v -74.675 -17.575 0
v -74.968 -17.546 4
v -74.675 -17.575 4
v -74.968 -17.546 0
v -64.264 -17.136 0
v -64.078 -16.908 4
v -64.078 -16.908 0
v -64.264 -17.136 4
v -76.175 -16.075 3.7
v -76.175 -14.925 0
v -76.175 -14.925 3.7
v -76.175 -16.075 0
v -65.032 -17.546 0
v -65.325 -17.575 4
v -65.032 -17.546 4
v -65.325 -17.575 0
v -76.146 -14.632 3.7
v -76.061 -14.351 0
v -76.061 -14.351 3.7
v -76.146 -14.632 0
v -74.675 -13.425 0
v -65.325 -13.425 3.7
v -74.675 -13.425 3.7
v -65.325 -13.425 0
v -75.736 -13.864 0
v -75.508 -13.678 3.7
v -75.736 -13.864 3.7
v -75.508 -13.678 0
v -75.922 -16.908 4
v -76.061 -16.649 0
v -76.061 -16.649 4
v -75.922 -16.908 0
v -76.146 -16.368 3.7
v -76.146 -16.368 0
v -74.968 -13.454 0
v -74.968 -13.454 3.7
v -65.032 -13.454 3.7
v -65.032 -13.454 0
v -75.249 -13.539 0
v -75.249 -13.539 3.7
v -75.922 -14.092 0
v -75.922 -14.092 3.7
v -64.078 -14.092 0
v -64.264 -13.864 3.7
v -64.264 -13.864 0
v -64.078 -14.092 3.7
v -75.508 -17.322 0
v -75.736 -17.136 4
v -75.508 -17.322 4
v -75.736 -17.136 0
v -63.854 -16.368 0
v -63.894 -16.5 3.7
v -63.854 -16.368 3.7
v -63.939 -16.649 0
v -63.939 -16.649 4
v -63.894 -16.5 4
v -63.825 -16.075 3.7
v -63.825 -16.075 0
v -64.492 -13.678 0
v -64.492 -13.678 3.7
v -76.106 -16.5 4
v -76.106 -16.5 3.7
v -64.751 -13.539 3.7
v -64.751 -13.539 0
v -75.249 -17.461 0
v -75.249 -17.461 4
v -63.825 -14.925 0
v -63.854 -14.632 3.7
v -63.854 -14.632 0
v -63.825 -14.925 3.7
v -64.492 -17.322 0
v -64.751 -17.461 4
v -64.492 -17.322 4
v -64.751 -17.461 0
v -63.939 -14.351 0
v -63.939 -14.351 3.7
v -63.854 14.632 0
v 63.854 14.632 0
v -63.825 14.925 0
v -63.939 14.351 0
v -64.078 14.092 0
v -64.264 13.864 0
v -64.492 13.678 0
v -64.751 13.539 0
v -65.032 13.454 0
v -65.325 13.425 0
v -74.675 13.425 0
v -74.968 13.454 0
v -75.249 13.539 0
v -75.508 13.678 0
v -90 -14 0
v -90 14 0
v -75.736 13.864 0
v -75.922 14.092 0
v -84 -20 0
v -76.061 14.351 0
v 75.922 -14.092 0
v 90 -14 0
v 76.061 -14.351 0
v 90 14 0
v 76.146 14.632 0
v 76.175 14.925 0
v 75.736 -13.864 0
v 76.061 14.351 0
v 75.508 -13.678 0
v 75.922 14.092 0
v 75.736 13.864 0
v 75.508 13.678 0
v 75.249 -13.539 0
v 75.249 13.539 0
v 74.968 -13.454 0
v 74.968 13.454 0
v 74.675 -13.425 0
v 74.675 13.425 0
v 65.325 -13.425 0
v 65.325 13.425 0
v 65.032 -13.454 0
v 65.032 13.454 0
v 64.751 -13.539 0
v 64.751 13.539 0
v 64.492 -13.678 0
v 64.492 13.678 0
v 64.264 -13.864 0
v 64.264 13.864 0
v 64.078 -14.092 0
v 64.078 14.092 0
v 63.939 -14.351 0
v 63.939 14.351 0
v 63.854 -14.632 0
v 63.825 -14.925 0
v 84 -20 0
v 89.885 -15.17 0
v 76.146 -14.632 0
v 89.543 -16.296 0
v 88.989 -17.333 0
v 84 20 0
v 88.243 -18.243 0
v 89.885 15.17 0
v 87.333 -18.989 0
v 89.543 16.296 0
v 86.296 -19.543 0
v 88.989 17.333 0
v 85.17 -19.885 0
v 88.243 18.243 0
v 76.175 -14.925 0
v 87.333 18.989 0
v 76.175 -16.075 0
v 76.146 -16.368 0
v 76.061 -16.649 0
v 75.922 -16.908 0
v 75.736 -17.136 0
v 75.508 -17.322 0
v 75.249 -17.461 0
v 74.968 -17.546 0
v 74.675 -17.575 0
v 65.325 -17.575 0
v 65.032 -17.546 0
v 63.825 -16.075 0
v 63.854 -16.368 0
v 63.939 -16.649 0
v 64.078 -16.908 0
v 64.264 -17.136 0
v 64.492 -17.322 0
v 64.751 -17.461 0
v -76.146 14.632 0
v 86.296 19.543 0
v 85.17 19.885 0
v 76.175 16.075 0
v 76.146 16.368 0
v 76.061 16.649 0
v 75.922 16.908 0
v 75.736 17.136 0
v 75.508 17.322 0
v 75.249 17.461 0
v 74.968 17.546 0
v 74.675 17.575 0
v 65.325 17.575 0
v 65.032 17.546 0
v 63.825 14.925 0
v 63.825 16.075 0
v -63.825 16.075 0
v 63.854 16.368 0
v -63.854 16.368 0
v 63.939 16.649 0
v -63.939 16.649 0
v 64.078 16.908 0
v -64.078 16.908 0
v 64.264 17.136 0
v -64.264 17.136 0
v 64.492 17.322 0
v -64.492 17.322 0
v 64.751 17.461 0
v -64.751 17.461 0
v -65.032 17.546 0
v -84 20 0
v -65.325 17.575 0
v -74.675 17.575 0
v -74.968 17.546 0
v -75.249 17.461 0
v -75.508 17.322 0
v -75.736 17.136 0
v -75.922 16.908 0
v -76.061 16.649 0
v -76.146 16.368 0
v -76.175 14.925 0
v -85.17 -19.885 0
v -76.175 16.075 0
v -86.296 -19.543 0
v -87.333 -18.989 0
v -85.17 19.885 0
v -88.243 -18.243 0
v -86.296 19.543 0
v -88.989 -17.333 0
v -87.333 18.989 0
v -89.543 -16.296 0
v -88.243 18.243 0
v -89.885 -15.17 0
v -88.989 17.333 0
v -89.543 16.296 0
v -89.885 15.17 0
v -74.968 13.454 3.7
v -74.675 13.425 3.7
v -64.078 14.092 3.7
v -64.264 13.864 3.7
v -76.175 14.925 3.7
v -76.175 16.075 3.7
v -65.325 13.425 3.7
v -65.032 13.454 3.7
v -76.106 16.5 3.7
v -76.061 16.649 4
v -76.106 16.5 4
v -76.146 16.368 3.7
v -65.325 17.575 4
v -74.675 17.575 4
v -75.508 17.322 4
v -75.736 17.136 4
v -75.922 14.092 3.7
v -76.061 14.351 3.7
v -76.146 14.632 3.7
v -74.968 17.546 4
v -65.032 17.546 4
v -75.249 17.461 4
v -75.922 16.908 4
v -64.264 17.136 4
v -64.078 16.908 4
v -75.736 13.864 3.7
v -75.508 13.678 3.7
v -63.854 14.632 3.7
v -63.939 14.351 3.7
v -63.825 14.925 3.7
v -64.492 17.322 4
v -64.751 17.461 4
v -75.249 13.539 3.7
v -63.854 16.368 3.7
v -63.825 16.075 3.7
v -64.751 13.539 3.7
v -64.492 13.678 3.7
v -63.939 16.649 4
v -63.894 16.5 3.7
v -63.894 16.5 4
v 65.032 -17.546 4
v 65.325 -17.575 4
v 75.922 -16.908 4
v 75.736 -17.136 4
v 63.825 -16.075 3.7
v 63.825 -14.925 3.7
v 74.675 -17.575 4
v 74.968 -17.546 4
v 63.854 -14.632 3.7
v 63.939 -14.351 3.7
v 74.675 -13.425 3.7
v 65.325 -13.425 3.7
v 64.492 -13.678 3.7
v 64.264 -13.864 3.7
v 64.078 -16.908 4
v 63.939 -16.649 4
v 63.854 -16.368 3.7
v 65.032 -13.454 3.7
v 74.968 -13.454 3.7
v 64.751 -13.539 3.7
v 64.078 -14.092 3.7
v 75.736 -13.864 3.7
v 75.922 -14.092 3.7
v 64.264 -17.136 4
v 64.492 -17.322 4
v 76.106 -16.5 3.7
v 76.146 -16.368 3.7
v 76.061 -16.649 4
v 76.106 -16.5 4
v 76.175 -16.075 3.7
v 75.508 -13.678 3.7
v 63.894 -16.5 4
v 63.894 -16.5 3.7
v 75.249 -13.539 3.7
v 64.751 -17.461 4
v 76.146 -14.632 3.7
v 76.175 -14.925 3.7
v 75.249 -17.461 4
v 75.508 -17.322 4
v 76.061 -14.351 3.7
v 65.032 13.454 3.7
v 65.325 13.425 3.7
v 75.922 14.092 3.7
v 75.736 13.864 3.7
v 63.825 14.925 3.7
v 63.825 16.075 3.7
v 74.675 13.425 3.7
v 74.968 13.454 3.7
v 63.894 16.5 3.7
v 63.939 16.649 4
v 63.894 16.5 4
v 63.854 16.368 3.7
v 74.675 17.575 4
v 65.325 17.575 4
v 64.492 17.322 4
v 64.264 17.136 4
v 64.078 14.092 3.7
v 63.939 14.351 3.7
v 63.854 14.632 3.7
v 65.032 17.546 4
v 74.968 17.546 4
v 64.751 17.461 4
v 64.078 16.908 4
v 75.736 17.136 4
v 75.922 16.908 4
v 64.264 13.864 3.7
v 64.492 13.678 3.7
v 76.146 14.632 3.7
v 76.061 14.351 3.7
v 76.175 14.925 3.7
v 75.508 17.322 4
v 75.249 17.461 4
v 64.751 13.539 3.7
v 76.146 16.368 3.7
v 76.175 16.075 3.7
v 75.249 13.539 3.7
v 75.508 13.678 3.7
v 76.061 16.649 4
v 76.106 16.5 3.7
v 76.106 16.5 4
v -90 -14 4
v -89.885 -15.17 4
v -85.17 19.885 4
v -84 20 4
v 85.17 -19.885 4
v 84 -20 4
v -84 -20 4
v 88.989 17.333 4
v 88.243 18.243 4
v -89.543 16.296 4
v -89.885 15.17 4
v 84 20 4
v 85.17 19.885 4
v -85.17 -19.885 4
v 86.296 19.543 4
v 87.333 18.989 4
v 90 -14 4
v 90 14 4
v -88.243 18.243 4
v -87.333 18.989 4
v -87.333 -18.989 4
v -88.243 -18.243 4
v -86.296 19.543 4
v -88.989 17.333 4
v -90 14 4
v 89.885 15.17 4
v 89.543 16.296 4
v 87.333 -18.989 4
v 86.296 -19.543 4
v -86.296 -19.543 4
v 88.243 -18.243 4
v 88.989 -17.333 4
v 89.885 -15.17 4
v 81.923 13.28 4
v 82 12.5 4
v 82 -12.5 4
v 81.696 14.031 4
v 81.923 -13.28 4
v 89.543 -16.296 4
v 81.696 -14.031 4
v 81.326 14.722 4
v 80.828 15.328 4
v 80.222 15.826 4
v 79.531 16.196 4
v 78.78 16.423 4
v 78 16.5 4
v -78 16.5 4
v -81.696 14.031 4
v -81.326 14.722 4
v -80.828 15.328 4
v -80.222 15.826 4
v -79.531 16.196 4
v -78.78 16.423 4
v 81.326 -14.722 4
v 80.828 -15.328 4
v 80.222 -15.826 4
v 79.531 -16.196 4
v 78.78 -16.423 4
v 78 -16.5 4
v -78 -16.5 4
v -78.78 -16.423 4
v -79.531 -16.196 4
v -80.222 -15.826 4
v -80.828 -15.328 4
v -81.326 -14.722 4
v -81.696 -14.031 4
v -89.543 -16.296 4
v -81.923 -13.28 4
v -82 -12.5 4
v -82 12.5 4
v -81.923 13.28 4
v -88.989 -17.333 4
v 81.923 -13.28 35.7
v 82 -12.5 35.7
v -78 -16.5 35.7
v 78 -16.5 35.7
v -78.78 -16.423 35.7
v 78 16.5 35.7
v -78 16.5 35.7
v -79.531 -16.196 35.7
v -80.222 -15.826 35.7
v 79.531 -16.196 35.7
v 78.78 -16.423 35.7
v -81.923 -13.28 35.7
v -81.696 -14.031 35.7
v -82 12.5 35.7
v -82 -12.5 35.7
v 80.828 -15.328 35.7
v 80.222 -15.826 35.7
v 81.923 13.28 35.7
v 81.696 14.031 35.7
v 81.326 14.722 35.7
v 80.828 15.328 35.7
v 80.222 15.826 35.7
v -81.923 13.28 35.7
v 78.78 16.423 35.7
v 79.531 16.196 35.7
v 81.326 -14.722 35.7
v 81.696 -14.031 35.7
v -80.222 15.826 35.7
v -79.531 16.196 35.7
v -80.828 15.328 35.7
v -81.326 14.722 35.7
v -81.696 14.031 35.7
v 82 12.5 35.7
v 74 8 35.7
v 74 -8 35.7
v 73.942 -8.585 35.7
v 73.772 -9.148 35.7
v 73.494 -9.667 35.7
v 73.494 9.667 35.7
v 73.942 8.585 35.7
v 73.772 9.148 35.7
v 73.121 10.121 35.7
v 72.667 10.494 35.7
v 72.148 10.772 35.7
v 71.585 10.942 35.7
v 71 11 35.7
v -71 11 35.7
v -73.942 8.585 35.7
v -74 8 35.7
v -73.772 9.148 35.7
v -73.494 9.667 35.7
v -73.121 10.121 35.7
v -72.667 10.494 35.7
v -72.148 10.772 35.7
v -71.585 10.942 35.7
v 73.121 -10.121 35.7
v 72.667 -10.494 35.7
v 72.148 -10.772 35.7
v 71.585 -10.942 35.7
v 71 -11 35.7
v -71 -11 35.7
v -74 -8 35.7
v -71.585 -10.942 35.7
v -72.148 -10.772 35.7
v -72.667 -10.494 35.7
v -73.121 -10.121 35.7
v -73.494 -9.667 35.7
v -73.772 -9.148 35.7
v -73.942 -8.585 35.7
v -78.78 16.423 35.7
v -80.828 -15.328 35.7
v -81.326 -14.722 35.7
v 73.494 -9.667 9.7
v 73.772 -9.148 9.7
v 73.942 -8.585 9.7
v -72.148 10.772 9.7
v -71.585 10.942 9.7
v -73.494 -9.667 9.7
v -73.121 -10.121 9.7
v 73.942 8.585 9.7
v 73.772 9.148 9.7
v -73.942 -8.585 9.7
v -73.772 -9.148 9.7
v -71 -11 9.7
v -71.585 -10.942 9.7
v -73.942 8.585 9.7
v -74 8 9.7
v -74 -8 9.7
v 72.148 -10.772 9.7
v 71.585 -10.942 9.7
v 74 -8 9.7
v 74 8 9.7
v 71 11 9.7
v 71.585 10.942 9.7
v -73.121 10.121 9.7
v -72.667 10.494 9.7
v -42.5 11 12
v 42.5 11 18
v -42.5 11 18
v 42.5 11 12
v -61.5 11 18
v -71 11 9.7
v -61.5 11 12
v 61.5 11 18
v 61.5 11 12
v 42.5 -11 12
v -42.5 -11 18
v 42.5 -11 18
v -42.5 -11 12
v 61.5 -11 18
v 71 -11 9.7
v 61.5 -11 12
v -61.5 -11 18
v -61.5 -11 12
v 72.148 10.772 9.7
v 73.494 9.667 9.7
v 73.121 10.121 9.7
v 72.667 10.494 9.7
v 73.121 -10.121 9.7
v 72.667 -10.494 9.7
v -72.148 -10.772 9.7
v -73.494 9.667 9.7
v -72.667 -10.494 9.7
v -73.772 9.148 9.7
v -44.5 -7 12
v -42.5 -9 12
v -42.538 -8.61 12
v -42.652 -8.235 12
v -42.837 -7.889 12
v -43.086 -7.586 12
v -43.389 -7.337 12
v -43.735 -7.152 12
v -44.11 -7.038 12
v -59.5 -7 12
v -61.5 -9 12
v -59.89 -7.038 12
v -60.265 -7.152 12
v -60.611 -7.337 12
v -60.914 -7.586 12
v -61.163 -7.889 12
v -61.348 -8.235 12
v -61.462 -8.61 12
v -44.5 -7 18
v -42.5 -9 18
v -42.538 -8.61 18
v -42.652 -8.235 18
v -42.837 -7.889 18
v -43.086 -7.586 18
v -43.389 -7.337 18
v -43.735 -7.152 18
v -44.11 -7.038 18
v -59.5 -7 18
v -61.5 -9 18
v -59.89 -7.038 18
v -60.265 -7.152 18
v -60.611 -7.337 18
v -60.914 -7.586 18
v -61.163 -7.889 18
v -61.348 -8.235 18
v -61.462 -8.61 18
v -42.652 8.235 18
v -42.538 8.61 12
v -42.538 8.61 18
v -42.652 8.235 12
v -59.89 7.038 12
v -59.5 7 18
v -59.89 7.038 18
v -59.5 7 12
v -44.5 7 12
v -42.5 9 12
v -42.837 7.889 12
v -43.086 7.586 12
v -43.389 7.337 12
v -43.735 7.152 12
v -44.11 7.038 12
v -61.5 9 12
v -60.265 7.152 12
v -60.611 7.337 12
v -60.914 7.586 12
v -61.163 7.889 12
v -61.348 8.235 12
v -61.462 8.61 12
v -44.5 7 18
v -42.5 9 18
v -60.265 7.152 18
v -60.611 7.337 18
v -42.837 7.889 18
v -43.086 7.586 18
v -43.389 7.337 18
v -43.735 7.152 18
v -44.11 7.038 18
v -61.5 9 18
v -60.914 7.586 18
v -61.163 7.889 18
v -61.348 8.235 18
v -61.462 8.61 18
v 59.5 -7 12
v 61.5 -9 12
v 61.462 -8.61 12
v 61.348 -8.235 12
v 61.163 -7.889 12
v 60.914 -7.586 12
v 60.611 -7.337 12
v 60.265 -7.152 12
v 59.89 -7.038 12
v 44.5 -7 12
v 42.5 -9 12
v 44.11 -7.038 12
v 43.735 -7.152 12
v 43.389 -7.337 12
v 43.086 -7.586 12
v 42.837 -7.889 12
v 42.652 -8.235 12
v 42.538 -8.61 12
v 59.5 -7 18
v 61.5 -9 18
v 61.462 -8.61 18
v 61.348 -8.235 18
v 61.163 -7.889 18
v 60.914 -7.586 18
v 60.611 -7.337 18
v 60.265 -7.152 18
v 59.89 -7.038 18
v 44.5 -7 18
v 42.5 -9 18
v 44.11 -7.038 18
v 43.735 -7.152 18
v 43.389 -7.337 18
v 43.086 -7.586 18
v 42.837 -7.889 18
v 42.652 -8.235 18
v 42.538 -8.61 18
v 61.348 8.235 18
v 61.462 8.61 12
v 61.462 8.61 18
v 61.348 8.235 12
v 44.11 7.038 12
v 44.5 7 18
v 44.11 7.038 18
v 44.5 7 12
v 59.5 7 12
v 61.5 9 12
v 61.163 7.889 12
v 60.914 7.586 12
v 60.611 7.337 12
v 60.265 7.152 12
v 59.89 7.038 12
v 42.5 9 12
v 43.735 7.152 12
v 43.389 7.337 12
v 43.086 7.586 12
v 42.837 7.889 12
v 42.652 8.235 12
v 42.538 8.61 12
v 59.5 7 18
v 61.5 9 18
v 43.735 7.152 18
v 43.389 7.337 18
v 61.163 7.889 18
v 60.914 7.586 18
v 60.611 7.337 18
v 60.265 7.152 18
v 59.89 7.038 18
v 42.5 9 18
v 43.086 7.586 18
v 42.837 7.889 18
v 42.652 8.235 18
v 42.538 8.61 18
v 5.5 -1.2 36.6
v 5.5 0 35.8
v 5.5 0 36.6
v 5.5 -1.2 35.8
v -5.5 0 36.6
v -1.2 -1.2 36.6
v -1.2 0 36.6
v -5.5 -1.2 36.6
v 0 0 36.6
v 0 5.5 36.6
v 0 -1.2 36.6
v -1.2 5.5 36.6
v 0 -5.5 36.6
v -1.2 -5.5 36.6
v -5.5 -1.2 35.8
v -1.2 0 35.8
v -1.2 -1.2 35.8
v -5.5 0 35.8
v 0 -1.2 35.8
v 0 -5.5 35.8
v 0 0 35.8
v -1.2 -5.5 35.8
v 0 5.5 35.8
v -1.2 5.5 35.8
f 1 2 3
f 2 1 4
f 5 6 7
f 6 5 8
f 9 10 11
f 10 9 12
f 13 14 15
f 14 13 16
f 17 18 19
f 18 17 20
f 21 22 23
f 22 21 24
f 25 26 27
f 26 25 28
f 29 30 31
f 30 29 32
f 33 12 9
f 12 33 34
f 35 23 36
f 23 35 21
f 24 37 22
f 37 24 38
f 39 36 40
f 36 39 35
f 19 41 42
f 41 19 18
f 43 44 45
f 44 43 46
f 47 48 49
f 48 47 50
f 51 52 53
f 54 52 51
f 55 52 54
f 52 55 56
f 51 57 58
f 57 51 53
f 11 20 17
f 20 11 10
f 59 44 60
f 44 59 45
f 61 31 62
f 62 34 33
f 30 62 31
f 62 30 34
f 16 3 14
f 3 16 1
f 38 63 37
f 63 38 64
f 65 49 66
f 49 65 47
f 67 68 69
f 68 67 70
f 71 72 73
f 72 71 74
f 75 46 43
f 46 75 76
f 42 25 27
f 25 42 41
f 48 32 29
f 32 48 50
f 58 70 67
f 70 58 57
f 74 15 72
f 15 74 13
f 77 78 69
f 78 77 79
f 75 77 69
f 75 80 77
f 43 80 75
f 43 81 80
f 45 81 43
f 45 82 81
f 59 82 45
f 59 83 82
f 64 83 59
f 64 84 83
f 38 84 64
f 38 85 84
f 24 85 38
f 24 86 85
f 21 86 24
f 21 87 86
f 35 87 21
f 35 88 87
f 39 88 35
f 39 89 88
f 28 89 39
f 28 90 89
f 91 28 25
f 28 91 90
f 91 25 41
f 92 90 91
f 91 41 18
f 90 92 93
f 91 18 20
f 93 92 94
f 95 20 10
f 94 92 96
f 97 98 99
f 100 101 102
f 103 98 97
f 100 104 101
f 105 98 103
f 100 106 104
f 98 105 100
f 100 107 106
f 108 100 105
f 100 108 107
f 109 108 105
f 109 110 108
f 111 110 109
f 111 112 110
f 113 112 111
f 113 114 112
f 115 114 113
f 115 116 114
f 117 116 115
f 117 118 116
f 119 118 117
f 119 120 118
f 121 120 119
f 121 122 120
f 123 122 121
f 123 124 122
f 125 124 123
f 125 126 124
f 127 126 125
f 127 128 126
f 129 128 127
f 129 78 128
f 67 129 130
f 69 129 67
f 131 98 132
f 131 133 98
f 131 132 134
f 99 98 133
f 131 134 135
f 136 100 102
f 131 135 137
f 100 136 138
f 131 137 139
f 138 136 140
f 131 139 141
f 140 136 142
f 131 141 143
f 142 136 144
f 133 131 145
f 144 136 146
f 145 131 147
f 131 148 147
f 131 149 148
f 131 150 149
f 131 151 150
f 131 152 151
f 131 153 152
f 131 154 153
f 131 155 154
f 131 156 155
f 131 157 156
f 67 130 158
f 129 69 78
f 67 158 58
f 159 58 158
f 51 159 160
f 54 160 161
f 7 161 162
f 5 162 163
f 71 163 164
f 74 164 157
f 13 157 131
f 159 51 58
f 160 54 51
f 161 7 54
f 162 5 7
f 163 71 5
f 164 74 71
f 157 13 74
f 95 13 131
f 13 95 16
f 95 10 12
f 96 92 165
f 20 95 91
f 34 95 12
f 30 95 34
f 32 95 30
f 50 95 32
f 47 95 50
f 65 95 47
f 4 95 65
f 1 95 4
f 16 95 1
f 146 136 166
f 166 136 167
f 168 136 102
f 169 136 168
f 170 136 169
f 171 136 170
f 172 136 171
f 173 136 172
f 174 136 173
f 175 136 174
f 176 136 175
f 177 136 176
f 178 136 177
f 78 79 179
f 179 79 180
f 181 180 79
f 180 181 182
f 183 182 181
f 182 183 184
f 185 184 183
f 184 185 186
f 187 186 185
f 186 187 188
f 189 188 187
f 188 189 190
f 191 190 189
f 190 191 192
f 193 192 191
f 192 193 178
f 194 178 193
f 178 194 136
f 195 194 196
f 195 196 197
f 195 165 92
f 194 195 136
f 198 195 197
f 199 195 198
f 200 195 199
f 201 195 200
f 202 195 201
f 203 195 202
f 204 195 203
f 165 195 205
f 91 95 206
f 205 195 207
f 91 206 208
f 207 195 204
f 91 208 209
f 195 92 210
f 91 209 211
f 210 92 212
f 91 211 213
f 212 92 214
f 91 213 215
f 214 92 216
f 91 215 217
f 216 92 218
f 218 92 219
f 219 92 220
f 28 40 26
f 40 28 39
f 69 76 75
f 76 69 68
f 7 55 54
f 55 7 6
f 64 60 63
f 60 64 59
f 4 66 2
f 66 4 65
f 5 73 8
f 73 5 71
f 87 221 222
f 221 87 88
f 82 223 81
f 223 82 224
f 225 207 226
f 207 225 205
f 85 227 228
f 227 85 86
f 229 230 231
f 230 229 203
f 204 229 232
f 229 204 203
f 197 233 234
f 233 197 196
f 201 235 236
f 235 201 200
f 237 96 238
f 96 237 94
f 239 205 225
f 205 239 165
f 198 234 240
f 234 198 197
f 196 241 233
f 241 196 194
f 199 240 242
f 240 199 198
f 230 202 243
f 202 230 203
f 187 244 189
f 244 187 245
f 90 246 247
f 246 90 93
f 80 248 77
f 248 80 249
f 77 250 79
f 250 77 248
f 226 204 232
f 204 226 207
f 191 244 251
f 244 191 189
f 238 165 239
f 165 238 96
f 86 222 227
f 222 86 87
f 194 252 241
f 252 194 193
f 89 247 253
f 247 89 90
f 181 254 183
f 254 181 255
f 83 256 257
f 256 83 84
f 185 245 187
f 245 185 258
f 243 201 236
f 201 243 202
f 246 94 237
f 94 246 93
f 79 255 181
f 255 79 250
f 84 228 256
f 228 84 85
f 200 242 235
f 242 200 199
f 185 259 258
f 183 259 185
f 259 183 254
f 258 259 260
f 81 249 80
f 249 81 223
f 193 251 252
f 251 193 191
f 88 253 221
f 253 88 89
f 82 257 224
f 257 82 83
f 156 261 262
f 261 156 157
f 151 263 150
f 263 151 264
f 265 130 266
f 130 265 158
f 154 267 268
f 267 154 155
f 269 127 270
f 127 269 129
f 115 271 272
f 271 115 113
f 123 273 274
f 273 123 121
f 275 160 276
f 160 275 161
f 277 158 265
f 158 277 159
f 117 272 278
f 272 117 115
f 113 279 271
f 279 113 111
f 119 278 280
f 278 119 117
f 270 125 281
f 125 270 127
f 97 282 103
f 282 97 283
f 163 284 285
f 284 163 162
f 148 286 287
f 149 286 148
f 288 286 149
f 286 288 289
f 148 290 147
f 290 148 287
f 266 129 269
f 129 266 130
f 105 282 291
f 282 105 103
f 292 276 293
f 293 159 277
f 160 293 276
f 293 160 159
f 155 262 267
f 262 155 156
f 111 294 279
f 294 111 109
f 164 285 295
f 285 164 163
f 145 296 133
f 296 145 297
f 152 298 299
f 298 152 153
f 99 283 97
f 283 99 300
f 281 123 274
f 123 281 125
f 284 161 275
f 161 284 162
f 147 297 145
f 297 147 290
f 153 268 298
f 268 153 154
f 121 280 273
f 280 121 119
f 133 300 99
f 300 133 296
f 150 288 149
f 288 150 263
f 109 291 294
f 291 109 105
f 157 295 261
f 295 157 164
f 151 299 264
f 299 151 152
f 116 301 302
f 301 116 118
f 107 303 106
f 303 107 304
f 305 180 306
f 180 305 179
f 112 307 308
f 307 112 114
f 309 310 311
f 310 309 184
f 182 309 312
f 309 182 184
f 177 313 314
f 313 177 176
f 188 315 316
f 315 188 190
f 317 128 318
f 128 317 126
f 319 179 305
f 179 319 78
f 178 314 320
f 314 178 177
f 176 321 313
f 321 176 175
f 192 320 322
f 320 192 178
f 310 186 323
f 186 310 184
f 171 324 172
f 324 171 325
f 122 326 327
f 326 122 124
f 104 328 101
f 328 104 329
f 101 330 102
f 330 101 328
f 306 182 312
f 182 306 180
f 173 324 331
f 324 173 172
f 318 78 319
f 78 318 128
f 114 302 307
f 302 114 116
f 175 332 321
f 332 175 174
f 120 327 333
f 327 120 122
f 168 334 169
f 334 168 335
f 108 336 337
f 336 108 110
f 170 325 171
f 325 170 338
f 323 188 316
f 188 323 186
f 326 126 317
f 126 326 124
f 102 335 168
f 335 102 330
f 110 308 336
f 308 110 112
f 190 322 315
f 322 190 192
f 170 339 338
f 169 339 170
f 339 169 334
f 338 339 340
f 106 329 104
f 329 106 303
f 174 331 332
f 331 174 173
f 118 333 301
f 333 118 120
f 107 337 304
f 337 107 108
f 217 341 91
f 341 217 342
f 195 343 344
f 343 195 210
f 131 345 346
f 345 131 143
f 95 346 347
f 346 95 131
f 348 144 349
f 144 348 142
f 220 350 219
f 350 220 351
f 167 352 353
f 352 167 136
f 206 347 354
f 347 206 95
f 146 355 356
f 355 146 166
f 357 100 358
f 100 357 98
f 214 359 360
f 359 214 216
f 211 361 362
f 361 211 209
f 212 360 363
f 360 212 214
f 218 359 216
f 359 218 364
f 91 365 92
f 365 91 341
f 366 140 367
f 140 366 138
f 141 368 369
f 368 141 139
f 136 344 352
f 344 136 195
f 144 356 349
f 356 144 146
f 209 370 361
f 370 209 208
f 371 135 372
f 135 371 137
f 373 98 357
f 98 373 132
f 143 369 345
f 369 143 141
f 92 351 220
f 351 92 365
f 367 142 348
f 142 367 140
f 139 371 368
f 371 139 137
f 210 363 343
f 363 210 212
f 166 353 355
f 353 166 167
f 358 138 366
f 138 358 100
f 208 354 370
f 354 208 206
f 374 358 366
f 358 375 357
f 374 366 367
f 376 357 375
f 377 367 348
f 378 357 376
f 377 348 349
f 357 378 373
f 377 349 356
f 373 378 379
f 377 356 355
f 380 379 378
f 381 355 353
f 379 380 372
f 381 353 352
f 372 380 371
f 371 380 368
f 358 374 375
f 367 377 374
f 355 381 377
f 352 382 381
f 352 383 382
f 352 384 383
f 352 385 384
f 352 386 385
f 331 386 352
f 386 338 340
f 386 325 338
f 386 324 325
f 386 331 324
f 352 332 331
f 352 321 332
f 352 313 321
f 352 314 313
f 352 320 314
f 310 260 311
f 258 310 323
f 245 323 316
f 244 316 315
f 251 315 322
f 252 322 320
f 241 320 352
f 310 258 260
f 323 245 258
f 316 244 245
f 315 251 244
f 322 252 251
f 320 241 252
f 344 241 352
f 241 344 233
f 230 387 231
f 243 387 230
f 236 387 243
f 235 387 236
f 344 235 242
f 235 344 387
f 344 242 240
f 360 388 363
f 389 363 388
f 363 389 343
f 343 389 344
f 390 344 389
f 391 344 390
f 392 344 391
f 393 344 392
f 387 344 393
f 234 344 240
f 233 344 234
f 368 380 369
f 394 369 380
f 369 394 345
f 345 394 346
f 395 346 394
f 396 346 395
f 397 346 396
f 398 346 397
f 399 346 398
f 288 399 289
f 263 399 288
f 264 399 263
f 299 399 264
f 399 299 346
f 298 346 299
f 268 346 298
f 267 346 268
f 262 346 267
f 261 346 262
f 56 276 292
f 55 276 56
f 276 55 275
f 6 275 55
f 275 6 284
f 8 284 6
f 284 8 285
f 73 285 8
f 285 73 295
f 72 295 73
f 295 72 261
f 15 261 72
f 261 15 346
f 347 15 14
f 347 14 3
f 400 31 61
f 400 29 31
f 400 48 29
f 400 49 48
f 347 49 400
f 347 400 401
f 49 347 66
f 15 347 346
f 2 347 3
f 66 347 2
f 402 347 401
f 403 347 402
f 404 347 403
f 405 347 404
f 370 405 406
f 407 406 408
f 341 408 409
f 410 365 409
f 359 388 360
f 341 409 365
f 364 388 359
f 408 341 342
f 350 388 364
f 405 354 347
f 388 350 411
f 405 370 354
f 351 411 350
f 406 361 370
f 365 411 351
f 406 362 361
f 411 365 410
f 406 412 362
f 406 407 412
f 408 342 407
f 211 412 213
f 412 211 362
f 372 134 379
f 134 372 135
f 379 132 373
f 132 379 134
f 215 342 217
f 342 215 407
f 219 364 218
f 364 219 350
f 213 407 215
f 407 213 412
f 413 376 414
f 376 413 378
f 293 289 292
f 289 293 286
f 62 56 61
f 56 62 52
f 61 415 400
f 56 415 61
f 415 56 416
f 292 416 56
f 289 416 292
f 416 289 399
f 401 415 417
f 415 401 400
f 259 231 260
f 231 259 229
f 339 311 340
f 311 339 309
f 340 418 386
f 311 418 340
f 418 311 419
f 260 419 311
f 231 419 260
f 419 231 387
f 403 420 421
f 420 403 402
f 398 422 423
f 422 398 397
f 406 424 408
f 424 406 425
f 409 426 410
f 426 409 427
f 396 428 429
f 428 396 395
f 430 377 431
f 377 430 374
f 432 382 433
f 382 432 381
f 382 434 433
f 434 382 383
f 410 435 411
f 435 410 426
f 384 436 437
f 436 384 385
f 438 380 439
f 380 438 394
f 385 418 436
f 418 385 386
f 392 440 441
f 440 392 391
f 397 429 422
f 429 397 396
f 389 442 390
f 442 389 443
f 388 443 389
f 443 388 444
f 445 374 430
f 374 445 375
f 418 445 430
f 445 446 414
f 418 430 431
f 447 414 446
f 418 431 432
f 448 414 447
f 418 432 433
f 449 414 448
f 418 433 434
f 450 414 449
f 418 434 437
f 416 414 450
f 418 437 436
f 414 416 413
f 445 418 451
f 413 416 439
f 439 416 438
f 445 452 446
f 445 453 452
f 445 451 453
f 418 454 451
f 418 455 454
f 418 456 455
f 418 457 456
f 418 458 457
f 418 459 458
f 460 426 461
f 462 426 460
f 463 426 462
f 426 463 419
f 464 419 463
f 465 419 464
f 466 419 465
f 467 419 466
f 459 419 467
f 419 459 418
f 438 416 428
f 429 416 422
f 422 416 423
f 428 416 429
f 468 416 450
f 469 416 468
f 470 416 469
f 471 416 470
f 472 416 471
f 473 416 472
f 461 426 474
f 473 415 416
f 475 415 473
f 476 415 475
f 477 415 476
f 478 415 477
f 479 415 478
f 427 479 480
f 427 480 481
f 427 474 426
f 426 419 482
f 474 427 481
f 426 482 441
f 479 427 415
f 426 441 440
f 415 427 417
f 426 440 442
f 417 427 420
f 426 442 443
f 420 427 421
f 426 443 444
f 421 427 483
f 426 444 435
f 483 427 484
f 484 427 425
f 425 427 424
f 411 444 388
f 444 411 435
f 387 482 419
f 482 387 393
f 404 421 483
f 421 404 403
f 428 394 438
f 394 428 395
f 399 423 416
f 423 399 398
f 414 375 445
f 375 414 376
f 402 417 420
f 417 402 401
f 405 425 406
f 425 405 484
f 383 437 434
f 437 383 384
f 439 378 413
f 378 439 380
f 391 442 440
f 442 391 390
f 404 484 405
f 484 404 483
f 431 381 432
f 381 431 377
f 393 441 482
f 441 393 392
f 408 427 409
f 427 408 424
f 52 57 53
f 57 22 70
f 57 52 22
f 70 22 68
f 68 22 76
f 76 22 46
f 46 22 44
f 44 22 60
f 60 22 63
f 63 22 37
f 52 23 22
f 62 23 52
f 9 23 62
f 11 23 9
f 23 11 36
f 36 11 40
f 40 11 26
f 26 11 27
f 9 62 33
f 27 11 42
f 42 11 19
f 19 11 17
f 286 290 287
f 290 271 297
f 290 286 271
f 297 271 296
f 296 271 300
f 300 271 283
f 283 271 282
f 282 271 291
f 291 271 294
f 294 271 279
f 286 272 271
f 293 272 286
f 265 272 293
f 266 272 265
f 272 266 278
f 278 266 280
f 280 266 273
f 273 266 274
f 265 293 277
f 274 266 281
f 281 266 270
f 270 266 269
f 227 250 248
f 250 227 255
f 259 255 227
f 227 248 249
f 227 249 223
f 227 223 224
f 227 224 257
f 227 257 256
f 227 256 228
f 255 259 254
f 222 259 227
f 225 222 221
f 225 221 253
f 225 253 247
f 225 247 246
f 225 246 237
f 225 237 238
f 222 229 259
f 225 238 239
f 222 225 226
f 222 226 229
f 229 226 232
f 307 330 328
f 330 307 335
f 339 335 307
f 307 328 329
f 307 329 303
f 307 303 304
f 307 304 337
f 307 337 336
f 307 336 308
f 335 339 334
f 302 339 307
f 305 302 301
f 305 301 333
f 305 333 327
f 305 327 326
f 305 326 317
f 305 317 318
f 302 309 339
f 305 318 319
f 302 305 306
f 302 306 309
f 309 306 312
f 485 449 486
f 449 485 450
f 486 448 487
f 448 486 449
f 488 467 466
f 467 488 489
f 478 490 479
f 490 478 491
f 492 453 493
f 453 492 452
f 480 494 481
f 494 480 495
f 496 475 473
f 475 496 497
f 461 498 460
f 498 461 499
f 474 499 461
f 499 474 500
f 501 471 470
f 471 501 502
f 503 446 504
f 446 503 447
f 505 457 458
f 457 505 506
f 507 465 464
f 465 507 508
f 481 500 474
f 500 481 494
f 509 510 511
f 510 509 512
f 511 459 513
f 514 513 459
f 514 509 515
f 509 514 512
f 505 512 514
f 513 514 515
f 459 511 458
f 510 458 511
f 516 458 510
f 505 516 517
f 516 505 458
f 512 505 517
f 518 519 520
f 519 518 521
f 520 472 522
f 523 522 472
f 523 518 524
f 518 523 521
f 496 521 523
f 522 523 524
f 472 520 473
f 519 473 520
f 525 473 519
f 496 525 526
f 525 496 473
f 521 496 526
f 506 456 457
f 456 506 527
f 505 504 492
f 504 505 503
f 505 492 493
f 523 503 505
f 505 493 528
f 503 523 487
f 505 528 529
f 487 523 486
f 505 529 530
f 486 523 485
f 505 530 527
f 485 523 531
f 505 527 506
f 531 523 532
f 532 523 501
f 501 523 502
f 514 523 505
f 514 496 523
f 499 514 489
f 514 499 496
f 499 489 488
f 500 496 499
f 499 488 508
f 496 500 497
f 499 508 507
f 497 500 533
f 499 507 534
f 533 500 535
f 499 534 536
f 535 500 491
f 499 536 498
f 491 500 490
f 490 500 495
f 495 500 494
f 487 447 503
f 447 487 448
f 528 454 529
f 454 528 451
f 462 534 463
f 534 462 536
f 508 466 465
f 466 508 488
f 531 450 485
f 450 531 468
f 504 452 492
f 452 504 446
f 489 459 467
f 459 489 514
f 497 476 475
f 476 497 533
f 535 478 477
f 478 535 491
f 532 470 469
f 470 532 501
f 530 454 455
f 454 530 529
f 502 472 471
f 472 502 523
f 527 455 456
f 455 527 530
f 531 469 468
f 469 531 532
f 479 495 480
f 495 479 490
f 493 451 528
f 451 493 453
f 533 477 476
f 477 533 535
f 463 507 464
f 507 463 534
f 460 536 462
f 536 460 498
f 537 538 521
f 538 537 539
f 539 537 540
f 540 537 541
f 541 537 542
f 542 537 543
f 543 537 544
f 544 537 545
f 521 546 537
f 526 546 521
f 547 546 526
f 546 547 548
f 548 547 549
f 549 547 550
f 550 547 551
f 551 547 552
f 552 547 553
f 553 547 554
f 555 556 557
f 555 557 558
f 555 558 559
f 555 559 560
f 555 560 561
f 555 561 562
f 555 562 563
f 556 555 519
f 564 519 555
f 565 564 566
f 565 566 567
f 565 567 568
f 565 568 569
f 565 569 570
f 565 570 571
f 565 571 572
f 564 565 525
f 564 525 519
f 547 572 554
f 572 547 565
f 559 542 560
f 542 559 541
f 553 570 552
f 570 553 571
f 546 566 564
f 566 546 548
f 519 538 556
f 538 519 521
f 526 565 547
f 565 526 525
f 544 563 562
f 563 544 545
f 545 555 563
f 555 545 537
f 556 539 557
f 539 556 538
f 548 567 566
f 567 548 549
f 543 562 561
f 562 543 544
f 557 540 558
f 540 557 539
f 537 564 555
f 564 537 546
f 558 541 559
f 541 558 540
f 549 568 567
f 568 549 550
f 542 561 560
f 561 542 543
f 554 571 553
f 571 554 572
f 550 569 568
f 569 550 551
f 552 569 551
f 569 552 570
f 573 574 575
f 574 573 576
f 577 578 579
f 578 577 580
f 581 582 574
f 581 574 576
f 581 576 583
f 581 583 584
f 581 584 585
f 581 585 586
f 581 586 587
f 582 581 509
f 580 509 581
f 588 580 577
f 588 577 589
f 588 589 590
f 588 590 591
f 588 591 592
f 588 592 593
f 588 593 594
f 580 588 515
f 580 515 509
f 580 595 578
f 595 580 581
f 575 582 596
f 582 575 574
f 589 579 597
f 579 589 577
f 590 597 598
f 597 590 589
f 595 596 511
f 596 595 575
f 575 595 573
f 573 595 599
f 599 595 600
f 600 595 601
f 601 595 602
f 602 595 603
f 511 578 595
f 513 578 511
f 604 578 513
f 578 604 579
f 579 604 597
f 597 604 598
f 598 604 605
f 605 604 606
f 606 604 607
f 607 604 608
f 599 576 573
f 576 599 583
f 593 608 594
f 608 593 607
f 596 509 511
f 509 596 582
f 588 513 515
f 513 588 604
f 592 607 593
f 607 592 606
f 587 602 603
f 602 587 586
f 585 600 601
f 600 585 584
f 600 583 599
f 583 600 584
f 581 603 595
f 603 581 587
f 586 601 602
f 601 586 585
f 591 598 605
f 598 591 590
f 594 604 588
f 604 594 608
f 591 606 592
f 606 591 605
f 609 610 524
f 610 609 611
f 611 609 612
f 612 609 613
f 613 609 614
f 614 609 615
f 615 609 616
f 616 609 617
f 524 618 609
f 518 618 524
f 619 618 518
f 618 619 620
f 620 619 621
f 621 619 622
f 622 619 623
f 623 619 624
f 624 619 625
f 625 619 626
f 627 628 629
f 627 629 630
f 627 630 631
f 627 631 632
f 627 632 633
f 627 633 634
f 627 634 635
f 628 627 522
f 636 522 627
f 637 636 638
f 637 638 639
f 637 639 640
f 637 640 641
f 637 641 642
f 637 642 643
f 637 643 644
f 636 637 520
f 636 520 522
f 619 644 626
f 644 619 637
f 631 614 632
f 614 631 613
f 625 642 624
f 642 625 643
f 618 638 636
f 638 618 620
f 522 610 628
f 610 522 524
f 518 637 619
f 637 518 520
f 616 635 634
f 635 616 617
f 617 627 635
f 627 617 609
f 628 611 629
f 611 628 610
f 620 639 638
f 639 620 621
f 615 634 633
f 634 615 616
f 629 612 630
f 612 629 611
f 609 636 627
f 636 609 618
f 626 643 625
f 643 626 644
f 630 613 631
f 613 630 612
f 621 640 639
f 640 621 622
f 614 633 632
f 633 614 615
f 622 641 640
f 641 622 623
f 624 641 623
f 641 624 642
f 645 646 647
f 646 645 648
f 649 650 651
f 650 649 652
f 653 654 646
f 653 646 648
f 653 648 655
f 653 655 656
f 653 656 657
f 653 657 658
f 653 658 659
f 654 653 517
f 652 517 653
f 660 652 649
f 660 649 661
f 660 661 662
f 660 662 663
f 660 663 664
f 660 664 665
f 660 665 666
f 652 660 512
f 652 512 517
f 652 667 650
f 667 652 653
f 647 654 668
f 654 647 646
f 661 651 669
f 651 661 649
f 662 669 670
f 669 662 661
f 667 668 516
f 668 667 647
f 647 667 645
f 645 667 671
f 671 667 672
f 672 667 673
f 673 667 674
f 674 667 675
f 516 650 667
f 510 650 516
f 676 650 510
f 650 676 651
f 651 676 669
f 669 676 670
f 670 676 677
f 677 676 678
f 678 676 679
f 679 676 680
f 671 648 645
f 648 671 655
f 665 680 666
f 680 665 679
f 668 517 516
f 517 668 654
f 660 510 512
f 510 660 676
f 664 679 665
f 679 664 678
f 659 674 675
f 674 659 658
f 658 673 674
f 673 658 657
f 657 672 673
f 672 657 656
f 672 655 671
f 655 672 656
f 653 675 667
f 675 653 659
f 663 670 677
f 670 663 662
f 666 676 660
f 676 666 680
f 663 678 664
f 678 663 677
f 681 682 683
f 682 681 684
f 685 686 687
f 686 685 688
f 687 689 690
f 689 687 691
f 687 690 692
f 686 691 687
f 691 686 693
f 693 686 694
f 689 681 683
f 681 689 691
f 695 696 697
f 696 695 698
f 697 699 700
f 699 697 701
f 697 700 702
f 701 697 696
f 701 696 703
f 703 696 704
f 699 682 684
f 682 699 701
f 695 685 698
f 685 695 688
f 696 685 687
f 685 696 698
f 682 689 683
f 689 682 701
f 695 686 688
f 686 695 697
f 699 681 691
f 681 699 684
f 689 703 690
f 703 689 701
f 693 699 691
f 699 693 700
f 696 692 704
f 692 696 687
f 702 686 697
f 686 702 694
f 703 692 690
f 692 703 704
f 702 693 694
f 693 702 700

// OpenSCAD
include <../s1_parameters.scad>

build_part = "full";

module open_bin_full() {
  union() {
    difference() {
      module_interface_base(cutout_height = 14);
    }
    translate([0, 0, s1_module_interface_height - 0.3])
      difference() {
        rounded_box([s1_module_length - 16, s1_module_width - 7, s1_open_bin_height], 4);
        translate([0, 0, 6])
          rounded_box([s1_module_length - 32, s1_module_width - 18, s1_open_bin_height + 4], 3);
      }
    ballast_blocks(z = 12);
    cg_marker(s1_module_interface_height + s1_open_bin_height + 0.2, 11);
  }
}

module open_bin_part() {
  if (build_part == "front")
    difference() {
      render(convexity = 10) intersection() { open_bin_full(); split_front_clip(s1_module_length, s1_module_width + 30, s1_module_interface_height + s1_open_bin_height + 70); }
      split_alignment_sockets("front", z = 0.5);
    }
  else if (build_part == "rear")
    difference() {
      render(convexity = 10) intersection() { open_bin_full(); split_rear_clip(s1_module_length, s1_module_width + 30, s1_module_interface_height + s1_open_bin_height + 70); }
      split_alignment_sockets("rear", z = 0.5);
    }
  else
    open_bin_full();
}

open_bin_part();
